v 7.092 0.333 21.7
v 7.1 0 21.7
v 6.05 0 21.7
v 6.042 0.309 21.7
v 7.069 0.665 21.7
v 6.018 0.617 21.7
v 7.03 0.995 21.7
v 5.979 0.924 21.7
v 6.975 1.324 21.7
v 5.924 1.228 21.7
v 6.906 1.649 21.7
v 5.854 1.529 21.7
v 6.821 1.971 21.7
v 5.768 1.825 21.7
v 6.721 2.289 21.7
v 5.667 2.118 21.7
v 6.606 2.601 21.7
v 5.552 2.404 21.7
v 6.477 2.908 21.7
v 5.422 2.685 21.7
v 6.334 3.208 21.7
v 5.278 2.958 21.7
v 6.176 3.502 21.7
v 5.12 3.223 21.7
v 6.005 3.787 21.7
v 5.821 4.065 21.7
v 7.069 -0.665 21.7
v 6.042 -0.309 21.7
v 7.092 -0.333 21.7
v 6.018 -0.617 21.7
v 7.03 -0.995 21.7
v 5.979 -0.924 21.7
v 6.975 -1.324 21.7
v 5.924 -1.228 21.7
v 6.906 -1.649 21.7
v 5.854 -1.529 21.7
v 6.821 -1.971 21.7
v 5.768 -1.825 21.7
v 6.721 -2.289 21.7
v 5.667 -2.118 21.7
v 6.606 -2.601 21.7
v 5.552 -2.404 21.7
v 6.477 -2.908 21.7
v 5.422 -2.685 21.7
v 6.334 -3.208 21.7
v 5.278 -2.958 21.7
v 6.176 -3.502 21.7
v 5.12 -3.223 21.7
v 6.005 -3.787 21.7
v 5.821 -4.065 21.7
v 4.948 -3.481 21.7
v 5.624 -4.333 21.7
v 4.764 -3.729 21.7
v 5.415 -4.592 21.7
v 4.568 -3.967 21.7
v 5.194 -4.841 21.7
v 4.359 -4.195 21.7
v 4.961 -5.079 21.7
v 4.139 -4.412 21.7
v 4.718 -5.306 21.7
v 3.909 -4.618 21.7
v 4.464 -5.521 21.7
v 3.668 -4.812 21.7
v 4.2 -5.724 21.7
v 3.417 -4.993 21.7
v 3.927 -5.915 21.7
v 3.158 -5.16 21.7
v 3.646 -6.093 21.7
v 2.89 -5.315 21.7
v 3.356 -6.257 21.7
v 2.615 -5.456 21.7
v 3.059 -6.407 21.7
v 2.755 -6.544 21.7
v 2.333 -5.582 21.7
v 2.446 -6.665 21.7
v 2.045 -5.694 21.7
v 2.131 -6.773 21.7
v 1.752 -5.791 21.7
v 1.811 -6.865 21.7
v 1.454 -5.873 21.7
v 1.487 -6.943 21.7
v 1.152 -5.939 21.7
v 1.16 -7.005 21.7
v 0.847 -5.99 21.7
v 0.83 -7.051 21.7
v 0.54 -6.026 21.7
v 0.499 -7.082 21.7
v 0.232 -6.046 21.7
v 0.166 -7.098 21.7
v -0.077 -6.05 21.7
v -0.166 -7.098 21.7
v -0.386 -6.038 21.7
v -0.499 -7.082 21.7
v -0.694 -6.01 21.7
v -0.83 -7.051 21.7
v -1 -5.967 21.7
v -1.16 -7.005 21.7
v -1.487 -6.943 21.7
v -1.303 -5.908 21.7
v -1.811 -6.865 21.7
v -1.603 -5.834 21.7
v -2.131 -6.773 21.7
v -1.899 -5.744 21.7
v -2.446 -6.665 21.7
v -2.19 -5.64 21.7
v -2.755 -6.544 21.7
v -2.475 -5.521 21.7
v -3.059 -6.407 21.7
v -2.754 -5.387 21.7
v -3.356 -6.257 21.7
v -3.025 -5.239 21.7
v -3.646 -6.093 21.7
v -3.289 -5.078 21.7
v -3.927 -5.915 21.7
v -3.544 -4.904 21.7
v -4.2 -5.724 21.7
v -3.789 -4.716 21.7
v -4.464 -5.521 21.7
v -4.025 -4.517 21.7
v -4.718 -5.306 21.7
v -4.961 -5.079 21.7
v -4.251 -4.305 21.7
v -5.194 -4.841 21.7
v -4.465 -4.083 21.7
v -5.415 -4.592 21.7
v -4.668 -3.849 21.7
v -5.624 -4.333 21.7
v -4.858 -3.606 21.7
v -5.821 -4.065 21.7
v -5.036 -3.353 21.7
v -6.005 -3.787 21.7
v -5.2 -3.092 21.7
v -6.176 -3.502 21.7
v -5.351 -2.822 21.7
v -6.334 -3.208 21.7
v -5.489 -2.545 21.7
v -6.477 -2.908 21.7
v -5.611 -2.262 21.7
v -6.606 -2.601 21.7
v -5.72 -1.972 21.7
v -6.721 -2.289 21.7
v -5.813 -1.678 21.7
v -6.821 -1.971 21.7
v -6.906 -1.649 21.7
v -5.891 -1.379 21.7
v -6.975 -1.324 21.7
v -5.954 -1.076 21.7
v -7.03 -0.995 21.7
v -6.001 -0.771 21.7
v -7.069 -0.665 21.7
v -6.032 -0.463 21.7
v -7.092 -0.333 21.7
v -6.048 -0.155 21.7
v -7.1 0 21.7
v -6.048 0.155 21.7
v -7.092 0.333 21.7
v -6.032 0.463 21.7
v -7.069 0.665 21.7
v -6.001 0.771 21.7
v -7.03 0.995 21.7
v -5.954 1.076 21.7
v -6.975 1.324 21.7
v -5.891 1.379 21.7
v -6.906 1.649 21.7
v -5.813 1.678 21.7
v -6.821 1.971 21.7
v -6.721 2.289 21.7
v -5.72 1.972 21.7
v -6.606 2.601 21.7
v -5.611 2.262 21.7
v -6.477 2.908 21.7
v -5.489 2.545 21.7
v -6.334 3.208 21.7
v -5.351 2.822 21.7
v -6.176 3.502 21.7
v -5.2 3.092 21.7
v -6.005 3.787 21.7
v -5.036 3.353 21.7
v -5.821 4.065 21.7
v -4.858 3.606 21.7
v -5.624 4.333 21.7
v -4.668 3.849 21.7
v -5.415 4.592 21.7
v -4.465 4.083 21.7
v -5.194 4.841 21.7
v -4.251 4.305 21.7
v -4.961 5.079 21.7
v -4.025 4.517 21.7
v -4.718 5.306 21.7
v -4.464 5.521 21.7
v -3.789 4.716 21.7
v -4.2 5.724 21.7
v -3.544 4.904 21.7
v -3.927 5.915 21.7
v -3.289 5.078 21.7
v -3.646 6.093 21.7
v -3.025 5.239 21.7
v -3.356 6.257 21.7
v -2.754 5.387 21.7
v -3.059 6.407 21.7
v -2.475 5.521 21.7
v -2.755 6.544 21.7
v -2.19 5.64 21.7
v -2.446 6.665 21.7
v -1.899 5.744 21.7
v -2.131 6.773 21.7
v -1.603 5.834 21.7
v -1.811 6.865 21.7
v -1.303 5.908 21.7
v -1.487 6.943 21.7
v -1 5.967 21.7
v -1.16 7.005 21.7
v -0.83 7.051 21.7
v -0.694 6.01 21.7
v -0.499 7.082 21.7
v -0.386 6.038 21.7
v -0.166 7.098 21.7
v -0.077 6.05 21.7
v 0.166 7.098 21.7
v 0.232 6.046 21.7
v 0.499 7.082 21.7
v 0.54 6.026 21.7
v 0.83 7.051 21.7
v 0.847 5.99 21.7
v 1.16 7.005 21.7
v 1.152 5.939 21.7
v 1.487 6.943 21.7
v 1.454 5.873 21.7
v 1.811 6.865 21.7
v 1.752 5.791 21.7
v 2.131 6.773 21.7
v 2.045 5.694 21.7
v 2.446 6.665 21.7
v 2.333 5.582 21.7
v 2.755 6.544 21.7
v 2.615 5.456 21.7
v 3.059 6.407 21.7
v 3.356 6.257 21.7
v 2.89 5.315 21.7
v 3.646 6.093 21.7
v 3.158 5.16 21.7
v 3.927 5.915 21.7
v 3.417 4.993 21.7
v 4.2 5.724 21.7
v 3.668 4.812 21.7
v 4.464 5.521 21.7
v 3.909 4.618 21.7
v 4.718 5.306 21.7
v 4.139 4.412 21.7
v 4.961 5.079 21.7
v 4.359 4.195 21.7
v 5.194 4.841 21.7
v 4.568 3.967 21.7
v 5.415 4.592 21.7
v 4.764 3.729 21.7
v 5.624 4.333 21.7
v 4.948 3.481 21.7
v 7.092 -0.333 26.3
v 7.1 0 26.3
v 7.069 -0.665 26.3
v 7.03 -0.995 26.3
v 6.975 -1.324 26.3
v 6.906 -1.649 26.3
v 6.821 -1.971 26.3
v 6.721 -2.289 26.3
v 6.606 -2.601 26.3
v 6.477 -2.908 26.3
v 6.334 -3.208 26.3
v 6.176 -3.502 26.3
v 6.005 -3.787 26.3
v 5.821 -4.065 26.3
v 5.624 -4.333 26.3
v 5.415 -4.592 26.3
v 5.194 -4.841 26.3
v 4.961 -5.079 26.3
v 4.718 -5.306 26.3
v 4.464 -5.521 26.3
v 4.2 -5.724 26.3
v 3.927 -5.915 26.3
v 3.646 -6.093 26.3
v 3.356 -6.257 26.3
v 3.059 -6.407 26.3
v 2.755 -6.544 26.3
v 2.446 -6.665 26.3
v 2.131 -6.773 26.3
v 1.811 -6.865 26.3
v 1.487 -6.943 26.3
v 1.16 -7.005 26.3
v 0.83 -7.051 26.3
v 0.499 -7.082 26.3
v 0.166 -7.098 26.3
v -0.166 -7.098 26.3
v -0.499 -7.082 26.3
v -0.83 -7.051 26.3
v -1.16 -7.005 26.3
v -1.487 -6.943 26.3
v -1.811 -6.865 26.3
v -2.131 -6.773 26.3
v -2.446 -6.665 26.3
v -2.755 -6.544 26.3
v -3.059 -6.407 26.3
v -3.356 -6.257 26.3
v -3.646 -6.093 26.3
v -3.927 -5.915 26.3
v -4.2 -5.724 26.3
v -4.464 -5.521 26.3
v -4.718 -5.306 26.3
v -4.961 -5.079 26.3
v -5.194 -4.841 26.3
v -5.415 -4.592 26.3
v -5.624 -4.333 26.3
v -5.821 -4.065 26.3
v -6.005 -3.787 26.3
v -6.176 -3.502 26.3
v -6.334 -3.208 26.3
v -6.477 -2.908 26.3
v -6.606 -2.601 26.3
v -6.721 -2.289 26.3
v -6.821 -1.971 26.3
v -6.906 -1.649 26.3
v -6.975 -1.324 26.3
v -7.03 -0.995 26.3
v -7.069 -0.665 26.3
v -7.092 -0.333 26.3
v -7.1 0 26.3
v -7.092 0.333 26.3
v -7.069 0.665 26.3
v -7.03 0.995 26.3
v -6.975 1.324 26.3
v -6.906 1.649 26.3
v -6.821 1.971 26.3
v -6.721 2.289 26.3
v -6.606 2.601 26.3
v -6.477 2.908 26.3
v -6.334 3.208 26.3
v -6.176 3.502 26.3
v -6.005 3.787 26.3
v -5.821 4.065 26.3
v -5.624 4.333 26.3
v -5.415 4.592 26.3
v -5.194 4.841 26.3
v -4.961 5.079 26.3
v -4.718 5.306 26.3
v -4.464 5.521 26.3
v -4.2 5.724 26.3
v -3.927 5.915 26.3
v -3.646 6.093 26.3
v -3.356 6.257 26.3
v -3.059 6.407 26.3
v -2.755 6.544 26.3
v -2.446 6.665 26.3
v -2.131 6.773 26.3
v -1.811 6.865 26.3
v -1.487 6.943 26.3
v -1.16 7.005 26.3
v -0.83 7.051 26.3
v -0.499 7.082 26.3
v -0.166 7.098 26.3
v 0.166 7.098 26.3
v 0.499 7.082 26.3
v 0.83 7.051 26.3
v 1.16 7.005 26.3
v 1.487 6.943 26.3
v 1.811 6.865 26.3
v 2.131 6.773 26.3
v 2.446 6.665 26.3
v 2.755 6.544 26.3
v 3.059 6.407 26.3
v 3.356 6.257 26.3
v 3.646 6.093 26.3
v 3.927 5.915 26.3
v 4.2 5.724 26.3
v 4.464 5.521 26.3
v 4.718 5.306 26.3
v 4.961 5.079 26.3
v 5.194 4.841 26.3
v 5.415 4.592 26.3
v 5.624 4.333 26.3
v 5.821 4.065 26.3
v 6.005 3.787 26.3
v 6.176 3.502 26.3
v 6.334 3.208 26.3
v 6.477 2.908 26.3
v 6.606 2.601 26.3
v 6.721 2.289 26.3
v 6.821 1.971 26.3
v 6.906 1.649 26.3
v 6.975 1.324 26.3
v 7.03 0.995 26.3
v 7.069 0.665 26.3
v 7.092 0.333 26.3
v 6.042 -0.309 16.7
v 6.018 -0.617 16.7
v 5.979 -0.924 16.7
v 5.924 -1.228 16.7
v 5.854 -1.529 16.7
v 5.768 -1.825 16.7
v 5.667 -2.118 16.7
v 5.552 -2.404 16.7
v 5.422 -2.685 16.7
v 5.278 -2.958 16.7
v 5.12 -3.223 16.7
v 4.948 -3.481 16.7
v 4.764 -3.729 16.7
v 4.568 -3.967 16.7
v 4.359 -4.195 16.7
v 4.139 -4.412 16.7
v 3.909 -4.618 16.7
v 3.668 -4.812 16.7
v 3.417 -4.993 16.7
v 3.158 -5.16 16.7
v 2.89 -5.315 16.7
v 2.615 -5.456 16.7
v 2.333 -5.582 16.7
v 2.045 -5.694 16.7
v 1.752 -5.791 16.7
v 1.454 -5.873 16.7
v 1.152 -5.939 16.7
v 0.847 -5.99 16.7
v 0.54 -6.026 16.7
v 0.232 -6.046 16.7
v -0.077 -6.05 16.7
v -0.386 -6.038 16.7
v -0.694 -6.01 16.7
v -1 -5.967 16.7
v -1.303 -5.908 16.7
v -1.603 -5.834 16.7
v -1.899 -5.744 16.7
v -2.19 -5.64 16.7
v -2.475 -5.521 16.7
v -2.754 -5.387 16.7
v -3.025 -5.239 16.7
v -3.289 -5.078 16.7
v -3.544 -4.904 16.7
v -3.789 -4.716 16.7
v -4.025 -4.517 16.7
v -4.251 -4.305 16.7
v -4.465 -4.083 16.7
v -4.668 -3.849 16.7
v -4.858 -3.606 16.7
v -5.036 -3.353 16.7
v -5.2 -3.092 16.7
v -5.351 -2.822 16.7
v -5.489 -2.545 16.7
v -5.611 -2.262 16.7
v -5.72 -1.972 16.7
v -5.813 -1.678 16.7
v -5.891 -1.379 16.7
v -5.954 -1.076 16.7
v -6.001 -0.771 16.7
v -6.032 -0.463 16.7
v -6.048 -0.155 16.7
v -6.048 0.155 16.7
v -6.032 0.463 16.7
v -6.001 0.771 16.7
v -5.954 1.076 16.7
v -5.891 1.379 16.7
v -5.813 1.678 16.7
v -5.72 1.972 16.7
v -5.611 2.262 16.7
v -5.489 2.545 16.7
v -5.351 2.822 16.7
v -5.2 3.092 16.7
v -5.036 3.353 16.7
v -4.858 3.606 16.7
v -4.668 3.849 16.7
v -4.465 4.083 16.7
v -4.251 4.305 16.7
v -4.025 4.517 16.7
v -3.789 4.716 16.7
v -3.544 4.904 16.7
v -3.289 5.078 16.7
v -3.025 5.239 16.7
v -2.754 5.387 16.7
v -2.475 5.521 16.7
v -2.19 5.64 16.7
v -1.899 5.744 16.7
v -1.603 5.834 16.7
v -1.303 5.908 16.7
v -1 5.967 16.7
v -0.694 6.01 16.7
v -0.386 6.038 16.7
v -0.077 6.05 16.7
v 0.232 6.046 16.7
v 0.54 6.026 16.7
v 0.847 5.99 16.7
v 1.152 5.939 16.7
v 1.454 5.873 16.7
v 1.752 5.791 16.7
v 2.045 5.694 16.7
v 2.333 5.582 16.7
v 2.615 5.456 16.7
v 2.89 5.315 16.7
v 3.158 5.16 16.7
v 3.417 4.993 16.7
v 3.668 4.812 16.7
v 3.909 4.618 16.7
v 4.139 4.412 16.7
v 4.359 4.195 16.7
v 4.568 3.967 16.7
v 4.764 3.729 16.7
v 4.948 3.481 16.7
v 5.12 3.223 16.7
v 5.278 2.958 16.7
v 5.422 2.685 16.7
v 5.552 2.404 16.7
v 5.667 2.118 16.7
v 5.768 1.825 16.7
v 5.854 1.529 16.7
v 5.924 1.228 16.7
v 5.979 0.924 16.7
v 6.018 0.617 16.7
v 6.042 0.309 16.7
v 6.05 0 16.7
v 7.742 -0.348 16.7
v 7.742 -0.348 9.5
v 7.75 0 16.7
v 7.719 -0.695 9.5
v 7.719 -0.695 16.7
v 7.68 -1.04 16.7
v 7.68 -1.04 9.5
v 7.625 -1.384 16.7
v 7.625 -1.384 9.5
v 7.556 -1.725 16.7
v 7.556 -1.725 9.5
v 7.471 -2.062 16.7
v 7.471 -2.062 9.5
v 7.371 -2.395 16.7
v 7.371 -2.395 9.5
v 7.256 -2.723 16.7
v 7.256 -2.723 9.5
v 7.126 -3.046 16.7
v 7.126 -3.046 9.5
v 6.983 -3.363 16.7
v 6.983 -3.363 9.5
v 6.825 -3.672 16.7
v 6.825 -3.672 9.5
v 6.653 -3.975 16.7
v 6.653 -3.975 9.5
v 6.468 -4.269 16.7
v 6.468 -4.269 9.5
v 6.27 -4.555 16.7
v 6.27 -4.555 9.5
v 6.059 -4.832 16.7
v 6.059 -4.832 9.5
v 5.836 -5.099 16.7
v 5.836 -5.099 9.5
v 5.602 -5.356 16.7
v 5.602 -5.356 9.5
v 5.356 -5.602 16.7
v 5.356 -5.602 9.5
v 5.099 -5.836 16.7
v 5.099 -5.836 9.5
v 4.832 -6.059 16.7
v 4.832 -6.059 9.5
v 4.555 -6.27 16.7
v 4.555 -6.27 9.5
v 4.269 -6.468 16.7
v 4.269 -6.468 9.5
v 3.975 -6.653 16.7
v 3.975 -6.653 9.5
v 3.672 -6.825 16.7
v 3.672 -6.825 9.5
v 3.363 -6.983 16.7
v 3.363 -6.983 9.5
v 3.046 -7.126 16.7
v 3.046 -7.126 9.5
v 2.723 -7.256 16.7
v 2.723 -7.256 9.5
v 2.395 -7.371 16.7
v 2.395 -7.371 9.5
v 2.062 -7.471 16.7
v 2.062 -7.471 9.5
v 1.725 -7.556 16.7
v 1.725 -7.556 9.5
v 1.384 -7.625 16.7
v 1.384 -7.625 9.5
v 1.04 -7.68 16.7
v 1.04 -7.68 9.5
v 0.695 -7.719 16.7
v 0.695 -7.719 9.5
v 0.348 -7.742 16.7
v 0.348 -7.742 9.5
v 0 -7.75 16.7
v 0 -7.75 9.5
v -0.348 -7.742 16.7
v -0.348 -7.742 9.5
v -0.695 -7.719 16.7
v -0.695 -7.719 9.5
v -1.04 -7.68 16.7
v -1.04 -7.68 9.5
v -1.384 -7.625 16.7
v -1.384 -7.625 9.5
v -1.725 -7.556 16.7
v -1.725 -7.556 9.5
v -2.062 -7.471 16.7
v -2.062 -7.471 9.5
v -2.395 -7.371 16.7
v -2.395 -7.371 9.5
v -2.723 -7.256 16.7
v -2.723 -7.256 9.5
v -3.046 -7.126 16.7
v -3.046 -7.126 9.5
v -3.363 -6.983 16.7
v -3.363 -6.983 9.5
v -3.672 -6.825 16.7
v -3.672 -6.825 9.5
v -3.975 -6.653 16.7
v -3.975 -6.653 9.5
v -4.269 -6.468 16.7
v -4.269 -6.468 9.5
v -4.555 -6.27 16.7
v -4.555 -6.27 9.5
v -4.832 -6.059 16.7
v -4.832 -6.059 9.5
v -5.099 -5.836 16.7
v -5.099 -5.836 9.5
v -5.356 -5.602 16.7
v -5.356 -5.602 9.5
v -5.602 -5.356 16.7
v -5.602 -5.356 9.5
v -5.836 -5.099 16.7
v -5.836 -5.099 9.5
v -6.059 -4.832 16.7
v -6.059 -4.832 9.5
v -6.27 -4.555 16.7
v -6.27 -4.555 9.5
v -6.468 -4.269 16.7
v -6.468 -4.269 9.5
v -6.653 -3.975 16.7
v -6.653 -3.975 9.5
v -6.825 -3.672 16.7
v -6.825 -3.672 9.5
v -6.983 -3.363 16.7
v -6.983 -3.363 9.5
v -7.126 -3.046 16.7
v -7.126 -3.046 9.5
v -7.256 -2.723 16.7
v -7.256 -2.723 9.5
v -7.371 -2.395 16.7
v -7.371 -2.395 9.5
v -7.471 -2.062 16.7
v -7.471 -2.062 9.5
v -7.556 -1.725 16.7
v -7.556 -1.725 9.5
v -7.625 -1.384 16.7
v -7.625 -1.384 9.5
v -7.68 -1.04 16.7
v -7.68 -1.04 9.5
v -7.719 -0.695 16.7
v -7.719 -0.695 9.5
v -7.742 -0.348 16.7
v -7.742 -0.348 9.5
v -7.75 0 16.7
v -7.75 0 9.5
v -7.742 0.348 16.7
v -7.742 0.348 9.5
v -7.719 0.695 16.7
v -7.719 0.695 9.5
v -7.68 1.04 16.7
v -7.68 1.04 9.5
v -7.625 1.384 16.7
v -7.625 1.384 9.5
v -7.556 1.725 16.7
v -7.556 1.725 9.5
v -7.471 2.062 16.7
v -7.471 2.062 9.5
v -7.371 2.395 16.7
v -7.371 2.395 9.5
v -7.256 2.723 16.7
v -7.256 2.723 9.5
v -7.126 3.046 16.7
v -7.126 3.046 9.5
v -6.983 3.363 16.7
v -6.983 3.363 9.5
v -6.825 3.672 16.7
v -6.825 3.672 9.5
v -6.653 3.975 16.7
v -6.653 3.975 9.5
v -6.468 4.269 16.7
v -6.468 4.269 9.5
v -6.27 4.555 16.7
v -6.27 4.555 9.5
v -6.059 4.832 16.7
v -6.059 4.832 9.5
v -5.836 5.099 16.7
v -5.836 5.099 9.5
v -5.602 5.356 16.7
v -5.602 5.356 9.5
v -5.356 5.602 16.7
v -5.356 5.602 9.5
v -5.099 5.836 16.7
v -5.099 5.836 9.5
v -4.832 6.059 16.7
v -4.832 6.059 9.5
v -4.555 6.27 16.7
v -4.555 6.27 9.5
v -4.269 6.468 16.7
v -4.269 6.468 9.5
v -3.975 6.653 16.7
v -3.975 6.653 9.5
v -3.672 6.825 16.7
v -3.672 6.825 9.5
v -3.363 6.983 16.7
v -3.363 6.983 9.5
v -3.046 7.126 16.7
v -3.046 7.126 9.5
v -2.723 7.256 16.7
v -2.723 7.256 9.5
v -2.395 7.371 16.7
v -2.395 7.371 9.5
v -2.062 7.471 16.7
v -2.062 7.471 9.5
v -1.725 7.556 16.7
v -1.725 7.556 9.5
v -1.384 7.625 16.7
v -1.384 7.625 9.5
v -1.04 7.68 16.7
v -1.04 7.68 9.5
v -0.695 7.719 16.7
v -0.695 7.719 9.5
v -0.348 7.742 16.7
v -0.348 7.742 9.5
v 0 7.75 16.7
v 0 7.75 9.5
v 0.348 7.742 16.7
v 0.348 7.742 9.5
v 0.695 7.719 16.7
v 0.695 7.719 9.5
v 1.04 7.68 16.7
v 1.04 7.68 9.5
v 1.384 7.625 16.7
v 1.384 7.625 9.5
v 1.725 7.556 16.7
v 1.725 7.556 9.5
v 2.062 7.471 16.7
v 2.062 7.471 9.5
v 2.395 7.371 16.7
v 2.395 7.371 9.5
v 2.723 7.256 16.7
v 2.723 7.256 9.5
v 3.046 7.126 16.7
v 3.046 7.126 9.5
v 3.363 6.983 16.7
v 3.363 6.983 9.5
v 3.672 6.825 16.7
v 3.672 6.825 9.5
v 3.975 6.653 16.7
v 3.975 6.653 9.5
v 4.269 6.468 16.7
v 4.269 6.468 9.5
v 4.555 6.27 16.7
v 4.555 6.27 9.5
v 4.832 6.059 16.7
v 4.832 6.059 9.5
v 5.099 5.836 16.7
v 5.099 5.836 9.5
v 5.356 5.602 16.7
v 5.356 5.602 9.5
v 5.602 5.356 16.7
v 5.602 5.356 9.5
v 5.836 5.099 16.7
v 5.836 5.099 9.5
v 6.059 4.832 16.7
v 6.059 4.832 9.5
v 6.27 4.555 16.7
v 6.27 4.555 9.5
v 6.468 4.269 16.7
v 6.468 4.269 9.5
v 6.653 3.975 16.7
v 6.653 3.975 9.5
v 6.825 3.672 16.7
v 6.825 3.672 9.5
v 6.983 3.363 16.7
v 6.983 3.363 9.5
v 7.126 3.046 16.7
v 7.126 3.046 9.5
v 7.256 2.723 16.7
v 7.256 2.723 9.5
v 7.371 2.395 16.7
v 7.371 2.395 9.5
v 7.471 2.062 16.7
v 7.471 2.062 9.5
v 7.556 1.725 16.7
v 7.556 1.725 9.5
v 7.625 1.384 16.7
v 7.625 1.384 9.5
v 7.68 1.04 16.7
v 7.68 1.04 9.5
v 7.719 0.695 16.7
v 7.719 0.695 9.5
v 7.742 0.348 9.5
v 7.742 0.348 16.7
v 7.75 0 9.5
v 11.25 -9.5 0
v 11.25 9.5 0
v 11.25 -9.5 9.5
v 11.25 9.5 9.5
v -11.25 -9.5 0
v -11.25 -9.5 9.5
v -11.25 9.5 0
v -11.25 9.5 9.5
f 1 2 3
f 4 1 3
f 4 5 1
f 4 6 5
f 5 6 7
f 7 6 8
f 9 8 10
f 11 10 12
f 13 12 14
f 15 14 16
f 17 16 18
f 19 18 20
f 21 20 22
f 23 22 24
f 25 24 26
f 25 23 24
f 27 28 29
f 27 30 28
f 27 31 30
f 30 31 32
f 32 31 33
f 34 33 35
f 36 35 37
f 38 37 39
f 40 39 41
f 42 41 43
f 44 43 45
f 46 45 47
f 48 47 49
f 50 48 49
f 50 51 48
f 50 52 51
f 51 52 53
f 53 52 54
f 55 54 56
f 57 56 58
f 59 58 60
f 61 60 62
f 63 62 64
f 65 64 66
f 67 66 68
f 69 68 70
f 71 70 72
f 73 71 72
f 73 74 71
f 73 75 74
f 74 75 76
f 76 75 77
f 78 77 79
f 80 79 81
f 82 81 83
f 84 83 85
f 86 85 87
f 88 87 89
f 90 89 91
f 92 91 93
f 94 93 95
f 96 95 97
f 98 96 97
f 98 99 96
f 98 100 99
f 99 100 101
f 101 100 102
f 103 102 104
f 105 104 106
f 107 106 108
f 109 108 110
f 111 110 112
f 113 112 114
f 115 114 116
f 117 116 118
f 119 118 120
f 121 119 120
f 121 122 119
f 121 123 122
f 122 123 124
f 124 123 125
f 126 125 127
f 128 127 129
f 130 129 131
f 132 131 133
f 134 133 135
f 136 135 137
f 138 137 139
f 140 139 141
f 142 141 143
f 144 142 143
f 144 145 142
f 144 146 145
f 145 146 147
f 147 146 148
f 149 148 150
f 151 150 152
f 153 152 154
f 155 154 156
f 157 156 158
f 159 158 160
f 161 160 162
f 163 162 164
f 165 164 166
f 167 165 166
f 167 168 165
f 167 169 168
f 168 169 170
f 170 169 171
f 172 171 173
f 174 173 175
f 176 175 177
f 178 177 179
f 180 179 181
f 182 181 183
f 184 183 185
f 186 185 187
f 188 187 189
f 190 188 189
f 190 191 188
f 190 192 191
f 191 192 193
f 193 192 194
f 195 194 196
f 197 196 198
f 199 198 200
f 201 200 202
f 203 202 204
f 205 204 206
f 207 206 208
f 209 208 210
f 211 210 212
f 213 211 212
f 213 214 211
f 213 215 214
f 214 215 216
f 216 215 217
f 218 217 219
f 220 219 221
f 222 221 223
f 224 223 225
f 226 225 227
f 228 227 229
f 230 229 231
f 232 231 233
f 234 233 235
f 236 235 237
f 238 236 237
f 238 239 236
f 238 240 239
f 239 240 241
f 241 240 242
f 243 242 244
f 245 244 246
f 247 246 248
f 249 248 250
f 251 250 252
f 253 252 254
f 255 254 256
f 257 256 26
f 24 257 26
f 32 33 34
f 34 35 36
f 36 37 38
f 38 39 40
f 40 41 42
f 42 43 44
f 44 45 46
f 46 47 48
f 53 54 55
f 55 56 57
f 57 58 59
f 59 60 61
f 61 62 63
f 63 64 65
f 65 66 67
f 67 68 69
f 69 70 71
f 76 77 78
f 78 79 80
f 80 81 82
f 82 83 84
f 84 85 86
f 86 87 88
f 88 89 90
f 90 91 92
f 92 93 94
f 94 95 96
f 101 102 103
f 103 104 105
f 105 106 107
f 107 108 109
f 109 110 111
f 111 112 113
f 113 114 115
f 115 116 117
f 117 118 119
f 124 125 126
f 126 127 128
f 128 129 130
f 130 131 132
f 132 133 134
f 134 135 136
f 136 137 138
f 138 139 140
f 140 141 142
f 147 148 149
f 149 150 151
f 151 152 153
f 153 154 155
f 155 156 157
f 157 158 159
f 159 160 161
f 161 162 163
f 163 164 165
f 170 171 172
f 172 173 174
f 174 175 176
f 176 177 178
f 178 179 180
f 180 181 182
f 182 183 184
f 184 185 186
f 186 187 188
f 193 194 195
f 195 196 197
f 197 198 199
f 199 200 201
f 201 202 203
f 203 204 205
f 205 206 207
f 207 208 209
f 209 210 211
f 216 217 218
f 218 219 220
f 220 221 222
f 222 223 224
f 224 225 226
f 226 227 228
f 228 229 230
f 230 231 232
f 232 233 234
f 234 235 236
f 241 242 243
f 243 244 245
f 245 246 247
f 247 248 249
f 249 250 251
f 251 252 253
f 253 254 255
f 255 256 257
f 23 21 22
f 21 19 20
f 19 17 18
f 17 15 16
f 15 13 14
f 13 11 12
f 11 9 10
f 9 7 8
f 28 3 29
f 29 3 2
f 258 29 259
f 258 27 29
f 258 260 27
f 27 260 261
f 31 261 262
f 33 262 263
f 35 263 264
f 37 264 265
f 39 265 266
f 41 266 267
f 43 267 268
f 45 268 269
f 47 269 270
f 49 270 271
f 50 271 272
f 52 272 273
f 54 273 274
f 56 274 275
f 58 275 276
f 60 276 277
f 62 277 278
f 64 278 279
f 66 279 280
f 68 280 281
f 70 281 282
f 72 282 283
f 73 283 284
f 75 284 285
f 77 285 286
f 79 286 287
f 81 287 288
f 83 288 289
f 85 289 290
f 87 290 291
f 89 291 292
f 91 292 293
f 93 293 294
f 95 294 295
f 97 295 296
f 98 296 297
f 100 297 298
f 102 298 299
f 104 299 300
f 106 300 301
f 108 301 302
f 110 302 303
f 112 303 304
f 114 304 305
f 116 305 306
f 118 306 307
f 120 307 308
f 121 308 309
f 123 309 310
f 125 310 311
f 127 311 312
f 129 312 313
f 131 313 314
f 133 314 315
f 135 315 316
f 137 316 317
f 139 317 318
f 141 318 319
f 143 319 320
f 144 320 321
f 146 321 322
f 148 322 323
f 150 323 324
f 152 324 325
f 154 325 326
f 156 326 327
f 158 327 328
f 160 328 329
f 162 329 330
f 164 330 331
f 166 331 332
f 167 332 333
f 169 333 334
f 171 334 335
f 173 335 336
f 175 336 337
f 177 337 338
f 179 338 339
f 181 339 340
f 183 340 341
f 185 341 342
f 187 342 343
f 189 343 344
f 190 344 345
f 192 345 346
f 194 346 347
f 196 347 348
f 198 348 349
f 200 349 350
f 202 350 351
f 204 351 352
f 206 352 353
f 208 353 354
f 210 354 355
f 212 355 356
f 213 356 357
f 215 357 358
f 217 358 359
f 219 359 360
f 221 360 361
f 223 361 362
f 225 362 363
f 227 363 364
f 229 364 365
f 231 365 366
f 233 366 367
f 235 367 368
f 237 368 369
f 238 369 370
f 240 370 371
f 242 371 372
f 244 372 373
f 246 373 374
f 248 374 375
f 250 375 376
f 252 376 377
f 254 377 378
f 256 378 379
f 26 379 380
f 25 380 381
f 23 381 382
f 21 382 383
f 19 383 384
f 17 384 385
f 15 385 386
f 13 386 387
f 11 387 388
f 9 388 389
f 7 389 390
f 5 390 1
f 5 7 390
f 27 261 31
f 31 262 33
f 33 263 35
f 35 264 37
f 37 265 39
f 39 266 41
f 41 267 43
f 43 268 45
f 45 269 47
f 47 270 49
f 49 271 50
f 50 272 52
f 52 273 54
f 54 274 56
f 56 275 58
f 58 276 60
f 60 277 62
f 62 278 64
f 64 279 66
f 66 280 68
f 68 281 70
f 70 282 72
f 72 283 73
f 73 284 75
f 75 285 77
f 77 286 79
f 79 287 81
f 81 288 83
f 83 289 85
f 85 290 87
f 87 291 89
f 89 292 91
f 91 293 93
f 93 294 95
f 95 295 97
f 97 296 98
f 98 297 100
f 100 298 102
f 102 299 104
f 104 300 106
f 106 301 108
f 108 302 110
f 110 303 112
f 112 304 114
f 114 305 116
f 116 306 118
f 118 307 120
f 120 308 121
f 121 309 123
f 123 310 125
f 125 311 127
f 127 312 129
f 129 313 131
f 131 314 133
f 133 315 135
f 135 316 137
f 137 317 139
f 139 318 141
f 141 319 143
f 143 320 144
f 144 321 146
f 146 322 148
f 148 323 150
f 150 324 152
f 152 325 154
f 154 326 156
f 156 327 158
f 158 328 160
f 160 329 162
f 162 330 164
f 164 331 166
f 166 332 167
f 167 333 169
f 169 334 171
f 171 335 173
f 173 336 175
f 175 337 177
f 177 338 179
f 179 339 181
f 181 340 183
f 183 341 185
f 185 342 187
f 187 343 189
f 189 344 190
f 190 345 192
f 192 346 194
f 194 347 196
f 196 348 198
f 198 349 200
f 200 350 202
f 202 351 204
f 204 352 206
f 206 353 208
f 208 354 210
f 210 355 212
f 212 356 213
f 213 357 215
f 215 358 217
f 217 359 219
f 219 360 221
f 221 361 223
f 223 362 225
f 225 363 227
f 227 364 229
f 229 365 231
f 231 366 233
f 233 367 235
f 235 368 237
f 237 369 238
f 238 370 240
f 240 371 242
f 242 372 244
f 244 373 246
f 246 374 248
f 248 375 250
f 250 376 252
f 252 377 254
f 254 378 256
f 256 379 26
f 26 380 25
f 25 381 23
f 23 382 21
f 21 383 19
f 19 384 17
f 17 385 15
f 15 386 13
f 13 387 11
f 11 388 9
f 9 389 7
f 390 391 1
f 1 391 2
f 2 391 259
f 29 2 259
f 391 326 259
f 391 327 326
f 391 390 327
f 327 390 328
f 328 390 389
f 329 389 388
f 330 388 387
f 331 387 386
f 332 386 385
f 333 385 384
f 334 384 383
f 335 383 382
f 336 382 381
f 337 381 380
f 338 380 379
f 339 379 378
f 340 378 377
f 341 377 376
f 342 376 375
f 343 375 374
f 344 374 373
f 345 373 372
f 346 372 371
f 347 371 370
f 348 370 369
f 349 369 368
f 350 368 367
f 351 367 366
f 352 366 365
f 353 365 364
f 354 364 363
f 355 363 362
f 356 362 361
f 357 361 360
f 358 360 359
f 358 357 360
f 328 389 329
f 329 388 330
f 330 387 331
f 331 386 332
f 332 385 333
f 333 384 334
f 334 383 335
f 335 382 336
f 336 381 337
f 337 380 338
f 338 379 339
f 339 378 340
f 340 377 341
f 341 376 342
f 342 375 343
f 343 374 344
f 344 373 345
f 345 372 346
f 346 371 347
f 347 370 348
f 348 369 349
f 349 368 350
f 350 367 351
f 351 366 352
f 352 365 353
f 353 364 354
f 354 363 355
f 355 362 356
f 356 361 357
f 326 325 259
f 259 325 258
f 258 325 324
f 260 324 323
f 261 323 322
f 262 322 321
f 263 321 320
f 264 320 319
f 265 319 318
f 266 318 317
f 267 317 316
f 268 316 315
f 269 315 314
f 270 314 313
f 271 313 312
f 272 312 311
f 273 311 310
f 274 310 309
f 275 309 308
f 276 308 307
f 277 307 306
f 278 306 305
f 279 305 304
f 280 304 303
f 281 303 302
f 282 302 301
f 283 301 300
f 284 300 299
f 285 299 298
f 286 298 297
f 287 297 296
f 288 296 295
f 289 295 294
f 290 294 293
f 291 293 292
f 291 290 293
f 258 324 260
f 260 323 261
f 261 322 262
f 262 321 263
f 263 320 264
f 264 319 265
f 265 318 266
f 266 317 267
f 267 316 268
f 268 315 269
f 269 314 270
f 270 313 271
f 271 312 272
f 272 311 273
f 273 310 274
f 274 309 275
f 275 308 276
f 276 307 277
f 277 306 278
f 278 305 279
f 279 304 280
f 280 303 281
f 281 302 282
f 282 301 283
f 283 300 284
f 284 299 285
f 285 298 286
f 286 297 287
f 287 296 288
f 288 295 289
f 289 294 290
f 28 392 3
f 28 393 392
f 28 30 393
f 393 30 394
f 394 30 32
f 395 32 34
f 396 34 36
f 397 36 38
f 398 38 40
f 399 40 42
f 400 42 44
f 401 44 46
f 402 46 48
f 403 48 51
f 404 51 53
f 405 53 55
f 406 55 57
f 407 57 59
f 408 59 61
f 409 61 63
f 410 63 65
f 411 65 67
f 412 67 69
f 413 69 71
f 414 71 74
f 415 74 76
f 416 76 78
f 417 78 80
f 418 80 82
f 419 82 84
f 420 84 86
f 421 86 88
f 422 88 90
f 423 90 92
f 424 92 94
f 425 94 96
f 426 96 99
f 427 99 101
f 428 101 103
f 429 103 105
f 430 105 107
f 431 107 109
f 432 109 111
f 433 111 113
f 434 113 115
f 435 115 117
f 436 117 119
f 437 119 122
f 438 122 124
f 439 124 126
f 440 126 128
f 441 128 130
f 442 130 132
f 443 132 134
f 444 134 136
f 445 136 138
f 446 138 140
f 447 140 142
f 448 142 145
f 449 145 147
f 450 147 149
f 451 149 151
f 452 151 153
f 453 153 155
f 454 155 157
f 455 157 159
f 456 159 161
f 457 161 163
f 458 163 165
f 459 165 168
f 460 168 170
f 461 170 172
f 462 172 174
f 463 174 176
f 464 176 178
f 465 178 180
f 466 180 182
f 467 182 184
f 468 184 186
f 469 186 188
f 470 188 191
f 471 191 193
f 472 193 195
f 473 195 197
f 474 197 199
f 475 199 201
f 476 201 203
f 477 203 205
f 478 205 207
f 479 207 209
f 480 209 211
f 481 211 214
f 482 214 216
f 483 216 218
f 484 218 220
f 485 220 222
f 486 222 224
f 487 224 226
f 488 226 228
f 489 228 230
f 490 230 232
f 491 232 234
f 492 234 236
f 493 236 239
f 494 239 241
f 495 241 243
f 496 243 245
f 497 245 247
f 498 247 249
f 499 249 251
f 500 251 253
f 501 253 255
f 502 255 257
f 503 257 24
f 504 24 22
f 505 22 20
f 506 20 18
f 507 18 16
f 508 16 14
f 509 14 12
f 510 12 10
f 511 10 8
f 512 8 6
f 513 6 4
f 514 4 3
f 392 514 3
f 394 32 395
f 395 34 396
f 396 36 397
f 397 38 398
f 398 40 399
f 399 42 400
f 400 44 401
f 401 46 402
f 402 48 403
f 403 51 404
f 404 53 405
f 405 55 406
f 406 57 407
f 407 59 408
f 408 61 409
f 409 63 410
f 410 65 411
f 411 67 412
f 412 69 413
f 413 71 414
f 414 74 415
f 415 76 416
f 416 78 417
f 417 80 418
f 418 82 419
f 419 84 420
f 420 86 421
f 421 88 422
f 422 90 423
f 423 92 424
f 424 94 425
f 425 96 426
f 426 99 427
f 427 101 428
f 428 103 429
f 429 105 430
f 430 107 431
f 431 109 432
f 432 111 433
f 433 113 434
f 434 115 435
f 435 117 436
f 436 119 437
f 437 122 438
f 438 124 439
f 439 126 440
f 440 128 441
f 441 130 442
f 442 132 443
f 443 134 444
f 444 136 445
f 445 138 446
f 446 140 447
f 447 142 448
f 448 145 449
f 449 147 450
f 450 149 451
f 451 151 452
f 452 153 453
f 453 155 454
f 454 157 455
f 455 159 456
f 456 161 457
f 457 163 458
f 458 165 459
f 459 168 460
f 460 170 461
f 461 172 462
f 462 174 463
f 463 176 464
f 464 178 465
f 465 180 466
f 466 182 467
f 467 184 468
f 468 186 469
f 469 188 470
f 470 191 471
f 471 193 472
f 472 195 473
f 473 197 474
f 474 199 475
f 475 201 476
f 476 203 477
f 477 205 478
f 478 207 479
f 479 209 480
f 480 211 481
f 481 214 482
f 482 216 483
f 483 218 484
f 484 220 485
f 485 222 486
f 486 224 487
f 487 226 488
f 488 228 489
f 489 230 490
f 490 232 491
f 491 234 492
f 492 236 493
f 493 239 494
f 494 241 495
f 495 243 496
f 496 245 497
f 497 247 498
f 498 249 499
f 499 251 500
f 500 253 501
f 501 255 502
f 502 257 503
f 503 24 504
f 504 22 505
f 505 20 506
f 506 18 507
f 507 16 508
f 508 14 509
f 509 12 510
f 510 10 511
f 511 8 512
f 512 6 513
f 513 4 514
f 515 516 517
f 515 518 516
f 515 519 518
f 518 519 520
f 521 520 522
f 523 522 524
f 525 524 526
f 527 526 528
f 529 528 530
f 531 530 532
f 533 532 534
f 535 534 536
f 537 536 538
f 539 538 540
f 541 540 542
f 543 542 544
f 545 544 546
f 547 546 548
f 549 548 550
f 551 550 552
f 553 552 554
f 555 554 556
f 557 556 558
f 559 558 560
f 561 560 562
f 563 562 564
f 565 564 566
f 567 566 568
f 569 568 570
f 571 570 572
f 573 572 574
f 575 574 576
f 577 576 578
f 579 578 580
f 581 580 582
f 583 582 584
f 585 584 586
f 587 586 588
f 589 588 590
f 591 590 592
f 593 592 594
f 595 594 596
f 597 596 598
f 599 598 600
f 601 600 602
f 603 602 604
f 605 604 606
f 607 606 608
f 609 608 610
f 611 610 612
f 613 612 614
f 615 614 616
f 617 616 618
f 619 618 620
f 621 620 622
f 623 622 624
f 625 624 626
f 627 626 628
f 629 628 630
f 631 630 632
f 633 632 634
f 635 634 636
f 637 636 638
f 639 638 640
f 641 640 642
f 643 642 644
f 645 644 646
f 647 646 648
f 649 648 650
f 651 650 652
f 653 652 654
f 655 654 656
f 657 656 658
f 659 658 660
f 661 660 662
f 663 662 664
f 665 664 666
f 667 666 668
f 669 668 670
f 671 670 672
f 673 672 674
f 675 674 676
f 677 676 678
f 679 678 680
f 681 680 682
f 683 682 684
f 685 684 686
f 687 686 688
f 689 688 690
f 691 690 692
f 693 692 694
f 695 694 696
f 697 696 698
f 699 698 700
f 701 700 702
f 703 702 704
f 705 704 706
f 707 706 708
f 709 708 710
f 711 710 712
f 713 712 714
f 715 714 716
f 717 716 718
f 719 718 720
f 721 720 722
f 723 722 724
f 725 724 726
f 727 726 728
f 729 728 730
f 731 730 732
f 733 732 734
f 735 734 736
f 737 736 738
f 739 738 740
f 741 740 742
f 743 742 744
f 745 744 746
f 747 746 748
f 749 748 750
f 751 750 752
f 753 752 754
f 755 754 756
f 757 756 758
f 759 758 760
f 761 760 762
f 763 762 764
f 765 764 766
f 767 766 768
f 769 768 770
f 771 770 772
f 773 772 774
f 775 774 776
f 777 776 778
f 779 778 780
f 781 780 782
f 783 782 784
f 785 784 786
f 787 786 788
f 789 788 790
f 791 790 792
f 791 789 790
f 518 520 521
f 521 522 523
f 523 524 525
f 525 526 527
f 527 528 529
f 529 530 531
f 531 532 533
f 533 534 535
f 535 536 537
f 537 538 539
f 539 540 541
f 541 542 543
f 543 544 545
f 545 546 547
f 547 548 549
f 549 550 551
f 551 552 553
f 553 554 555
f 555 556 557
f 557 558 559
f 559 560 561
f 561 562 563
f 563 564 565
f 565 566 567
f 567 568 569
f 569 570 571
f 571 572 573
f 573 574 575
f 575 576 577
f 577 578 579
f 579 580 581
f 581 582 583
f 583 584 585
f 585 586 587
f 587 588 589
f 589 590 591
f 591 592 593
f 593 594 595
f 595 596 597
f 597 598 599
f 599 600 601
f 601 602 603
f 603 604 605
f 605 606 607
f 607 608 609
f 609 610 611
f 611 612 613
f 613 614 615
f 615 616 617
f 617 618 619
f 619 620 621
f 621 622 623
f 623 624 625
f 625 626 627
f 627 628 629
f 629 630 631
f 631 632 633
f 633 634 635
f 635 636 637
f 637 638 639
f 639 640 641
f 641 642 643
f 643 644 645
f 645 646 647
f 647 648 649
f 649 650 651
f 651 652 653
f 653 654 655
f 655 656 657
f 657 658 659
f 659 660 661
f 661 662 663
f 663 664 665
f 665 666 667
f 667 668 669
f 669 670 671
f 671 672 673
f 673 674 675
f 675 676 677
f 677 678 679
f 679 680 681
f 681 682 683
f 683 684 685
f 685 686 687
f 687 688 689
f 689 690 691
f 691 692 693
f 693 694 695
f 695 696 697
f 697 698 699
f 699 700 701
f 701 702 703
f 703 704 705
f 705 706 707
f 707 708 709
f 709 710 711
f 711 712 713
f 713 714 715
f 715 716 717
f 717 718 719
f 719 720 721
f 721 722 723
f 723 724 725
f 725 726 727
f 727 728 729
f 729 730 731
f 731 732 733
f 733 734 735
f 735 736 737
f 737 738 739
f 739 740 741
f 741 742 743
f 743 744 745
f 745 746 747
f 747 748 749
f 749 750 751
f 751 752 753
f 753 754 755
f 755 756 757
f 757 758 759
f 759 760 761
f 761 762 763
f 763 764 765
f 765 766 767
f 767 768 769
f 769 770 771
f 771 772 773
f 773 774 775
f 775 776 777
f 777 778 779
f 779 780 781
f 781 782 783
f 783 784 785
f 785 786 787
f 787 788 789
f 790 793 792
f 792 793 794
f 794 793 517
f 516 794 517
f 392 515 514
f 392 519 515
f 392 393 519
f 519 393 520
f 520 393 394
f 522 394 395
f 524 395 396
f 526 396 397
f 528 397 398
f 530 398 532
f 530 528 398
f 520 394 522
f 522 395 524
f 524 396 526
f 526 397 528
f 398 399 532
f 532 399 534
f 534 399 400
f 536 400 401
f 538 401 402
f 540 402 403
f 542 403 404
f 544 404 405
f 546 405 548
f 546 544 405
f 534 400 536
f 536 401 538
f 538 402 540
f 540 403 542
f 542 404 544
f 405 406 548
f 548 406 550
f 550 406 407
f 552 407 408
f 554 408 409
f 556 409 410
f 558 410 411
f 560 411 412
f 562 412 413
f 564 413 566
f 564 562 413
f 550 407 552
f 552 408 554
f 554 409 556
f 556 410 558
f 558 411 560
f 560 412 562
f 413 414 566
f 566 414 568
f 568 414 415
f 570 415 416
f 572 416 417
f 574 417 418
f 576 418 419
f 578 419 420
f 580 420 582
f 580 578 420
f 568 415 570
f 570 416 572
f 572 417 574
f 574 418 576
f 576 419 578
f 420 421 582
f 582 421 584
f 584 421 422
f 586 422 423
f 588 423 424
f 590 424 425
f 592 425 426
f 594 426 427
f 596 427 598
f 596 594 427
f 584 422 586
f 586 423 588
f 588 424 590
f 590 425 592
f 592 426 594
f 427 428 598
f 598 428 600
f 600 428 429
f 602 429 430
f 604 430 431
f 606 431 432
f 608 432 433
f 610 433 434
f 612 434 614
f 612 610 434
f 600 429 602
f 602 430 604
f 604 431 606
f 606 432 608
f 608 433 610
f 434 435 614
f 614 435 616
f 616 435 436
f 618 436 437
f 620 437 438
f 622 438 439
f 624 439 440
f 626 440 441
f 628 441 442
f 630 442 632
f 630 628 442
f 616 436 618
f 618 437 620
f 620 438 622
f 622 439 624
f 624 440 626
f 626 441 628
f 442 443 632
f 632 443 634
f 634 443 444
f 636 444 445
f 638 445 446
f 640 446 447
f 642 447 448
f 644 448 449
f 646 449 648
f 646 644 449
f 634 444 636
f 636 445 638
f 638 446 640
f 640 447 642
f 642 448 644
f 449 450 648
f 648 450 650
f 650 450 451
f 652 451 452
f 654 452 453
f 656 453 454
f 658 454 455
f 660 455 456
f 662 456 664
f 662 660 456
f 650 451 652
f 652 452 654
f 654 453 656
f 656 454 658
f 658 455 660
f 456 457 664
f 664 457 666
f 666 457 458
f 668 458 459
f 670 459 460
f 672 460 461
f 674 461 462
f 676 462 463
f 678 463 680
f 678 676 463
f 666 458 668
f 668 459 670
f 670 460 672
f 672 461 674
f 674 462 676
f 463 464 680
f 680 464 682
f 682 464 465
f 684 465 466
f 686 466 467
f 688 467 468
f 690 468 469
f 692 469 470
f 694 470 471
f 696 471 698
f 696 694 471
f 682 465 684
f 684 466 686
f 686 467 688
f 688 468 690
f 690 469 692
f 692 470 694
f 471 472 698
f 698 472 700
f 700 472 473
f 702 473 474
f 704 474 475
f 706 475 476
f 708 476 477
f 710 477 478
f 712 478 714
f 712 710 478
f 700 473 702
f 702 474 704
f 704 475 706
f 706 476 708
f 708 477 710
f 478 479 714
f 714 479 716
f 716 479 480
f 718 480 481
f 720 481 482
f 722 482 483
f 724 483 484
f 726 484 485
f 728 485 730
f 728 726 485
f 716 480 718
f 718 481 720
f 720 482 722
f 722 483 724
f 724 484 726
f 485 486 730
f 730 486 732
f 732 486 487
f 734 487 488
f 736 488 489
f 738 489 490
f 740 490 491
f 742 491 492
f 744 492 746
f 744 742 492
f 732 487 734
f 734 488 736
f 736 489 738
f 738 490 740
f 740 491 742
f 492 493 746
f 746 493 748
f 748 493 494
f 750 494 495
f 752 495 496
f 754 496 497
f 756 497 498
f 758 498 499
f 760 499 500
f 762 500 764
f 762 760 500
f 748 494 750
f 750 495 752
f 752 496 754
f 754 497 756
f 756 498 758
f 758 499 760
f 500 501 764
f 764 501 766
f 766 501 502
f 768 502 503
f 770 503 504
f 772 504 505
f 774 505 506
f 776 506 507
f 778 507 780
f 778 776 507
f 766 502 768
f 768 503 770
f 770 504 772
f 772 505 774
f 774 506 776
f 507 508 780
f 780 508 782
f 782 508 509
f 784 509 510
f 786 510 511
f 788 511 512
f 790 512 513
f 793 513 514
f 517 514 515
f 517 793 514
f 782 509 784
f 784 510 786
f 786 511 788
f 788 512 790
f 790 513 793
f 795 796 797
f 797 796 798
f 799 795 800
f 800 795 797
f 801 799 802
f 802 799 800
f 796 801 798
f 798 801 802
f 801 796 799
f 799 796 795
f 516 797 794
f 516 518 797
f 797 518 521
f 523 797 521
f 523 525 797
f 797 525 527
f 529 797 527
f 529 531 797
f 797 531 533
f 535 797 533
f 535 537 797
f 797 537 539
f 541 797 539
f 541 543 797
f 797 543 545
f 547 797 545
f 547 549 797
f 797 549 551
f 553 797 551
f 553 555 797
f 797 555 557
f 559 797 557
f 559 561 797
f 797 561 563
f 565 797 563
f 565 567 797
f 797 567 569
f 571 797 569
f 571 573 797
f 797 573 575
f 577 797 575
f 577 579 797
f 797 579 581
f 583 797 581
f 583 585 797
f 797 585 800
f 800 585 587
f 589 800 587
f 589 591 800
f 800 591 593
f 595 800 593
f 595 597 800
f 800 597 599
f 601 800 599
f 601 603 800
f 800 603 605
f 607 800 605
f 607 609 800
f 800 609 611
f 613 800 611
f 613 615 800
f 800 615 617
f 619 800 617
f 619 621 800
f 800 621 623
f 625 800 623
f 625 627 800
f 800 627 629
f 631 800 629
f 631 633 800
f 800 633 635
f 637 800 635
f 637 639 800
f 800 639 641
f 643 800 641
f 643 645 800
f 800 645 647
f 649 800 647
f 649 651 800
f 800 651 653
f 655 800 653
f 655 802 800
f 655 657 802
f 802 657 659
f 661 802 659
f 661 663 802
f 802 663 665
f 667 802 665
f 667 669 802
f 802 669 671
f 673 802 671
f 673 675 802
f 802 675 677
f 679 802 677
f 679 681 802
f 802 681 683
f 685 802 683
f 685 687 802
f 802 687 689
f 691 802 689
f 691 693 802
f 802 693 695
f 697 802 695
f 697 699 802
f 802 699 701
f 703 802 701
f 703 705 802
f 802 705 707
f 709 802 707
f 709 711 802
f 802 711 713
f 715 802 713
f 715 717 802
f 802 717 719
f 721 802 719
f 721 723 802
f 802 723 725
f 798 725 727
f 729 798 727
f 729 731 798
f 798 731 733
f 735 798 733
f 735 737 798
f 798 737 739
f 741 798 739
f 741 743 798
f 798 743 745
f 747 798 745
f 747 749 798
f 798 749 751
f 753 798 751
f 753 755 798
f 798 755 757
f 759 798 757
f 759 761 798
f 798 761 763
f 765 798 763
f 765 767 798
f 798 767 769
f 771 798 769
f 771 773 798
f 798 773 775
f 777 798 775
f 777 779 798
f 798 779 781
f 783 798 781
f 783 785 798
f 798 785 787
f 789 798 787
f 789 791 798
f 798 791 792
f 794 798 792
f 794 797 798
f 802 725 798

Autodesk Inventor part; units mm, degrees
ref_plane "YZ Plane" through (0, 0, 0) normal (1, 0, 0) x (0, 1, 0)
ref_plane "XZ Plane" through (0, 0, 0) normal (0, 1, 0) x (-1, 0, 0)
ref_plane "XY Plane" through (0, 0, 0) normal (0, 0, 1) x (1, 0, 0)
sketch "Sketch1" plane through (0, 0, 0) normal (0, 0, 1) x (1, 0, 0)
  line L0 (-11.25, 9.5) -> (11.25, 9.5)
  line L1 (11.25, 9.5) -> (11.25, -9.5)
  line L2 (11.25, -9.5) -> (-11.25, -9.5)
  line L3 (-11.25, -9.5) -> (-11.25, 9.5)
  point P0 (0, 0)
  point P1 (-11.25, 0)
  point P2 (0, 9.5)
  dimension "d0" = 19
  dimension "d1" = 22.5
extrude "Extrusion1" add sketch "Sketch1" along normal blind 9.5
sketch "Sketch2" plane through (0, 0, 9.5) normal (0, 0, 1) x (1, 0, 0)
  circle A0 centre (0, 0) radius 7.75
  dimension "d4" = 15.5
extrude "Extrusion2" add sketch "Sketch2" along normal blind 7.2
sketch "Sketch3" plane through (0, 0, 16.7) normal (0, 0, 1) x (1, 0, 0)
  circle A0 centre (0, 0) radius 6.05
  dimension "d7" = 12.1
extrude "Extrusion3" add sketch "Sketch3" along normal blind 5
sketch "Sketch4" plane through (0, 0, 21.7) normal (0, 0, 1) x (1, 0, 0)
  circle A0 centre (0, 0) radius 7.1
  dimension "d10" = 14.2
extrude "Extrusion4" add sketch "Sketch4" along normal blind 4.6
properties part number "Camera"
